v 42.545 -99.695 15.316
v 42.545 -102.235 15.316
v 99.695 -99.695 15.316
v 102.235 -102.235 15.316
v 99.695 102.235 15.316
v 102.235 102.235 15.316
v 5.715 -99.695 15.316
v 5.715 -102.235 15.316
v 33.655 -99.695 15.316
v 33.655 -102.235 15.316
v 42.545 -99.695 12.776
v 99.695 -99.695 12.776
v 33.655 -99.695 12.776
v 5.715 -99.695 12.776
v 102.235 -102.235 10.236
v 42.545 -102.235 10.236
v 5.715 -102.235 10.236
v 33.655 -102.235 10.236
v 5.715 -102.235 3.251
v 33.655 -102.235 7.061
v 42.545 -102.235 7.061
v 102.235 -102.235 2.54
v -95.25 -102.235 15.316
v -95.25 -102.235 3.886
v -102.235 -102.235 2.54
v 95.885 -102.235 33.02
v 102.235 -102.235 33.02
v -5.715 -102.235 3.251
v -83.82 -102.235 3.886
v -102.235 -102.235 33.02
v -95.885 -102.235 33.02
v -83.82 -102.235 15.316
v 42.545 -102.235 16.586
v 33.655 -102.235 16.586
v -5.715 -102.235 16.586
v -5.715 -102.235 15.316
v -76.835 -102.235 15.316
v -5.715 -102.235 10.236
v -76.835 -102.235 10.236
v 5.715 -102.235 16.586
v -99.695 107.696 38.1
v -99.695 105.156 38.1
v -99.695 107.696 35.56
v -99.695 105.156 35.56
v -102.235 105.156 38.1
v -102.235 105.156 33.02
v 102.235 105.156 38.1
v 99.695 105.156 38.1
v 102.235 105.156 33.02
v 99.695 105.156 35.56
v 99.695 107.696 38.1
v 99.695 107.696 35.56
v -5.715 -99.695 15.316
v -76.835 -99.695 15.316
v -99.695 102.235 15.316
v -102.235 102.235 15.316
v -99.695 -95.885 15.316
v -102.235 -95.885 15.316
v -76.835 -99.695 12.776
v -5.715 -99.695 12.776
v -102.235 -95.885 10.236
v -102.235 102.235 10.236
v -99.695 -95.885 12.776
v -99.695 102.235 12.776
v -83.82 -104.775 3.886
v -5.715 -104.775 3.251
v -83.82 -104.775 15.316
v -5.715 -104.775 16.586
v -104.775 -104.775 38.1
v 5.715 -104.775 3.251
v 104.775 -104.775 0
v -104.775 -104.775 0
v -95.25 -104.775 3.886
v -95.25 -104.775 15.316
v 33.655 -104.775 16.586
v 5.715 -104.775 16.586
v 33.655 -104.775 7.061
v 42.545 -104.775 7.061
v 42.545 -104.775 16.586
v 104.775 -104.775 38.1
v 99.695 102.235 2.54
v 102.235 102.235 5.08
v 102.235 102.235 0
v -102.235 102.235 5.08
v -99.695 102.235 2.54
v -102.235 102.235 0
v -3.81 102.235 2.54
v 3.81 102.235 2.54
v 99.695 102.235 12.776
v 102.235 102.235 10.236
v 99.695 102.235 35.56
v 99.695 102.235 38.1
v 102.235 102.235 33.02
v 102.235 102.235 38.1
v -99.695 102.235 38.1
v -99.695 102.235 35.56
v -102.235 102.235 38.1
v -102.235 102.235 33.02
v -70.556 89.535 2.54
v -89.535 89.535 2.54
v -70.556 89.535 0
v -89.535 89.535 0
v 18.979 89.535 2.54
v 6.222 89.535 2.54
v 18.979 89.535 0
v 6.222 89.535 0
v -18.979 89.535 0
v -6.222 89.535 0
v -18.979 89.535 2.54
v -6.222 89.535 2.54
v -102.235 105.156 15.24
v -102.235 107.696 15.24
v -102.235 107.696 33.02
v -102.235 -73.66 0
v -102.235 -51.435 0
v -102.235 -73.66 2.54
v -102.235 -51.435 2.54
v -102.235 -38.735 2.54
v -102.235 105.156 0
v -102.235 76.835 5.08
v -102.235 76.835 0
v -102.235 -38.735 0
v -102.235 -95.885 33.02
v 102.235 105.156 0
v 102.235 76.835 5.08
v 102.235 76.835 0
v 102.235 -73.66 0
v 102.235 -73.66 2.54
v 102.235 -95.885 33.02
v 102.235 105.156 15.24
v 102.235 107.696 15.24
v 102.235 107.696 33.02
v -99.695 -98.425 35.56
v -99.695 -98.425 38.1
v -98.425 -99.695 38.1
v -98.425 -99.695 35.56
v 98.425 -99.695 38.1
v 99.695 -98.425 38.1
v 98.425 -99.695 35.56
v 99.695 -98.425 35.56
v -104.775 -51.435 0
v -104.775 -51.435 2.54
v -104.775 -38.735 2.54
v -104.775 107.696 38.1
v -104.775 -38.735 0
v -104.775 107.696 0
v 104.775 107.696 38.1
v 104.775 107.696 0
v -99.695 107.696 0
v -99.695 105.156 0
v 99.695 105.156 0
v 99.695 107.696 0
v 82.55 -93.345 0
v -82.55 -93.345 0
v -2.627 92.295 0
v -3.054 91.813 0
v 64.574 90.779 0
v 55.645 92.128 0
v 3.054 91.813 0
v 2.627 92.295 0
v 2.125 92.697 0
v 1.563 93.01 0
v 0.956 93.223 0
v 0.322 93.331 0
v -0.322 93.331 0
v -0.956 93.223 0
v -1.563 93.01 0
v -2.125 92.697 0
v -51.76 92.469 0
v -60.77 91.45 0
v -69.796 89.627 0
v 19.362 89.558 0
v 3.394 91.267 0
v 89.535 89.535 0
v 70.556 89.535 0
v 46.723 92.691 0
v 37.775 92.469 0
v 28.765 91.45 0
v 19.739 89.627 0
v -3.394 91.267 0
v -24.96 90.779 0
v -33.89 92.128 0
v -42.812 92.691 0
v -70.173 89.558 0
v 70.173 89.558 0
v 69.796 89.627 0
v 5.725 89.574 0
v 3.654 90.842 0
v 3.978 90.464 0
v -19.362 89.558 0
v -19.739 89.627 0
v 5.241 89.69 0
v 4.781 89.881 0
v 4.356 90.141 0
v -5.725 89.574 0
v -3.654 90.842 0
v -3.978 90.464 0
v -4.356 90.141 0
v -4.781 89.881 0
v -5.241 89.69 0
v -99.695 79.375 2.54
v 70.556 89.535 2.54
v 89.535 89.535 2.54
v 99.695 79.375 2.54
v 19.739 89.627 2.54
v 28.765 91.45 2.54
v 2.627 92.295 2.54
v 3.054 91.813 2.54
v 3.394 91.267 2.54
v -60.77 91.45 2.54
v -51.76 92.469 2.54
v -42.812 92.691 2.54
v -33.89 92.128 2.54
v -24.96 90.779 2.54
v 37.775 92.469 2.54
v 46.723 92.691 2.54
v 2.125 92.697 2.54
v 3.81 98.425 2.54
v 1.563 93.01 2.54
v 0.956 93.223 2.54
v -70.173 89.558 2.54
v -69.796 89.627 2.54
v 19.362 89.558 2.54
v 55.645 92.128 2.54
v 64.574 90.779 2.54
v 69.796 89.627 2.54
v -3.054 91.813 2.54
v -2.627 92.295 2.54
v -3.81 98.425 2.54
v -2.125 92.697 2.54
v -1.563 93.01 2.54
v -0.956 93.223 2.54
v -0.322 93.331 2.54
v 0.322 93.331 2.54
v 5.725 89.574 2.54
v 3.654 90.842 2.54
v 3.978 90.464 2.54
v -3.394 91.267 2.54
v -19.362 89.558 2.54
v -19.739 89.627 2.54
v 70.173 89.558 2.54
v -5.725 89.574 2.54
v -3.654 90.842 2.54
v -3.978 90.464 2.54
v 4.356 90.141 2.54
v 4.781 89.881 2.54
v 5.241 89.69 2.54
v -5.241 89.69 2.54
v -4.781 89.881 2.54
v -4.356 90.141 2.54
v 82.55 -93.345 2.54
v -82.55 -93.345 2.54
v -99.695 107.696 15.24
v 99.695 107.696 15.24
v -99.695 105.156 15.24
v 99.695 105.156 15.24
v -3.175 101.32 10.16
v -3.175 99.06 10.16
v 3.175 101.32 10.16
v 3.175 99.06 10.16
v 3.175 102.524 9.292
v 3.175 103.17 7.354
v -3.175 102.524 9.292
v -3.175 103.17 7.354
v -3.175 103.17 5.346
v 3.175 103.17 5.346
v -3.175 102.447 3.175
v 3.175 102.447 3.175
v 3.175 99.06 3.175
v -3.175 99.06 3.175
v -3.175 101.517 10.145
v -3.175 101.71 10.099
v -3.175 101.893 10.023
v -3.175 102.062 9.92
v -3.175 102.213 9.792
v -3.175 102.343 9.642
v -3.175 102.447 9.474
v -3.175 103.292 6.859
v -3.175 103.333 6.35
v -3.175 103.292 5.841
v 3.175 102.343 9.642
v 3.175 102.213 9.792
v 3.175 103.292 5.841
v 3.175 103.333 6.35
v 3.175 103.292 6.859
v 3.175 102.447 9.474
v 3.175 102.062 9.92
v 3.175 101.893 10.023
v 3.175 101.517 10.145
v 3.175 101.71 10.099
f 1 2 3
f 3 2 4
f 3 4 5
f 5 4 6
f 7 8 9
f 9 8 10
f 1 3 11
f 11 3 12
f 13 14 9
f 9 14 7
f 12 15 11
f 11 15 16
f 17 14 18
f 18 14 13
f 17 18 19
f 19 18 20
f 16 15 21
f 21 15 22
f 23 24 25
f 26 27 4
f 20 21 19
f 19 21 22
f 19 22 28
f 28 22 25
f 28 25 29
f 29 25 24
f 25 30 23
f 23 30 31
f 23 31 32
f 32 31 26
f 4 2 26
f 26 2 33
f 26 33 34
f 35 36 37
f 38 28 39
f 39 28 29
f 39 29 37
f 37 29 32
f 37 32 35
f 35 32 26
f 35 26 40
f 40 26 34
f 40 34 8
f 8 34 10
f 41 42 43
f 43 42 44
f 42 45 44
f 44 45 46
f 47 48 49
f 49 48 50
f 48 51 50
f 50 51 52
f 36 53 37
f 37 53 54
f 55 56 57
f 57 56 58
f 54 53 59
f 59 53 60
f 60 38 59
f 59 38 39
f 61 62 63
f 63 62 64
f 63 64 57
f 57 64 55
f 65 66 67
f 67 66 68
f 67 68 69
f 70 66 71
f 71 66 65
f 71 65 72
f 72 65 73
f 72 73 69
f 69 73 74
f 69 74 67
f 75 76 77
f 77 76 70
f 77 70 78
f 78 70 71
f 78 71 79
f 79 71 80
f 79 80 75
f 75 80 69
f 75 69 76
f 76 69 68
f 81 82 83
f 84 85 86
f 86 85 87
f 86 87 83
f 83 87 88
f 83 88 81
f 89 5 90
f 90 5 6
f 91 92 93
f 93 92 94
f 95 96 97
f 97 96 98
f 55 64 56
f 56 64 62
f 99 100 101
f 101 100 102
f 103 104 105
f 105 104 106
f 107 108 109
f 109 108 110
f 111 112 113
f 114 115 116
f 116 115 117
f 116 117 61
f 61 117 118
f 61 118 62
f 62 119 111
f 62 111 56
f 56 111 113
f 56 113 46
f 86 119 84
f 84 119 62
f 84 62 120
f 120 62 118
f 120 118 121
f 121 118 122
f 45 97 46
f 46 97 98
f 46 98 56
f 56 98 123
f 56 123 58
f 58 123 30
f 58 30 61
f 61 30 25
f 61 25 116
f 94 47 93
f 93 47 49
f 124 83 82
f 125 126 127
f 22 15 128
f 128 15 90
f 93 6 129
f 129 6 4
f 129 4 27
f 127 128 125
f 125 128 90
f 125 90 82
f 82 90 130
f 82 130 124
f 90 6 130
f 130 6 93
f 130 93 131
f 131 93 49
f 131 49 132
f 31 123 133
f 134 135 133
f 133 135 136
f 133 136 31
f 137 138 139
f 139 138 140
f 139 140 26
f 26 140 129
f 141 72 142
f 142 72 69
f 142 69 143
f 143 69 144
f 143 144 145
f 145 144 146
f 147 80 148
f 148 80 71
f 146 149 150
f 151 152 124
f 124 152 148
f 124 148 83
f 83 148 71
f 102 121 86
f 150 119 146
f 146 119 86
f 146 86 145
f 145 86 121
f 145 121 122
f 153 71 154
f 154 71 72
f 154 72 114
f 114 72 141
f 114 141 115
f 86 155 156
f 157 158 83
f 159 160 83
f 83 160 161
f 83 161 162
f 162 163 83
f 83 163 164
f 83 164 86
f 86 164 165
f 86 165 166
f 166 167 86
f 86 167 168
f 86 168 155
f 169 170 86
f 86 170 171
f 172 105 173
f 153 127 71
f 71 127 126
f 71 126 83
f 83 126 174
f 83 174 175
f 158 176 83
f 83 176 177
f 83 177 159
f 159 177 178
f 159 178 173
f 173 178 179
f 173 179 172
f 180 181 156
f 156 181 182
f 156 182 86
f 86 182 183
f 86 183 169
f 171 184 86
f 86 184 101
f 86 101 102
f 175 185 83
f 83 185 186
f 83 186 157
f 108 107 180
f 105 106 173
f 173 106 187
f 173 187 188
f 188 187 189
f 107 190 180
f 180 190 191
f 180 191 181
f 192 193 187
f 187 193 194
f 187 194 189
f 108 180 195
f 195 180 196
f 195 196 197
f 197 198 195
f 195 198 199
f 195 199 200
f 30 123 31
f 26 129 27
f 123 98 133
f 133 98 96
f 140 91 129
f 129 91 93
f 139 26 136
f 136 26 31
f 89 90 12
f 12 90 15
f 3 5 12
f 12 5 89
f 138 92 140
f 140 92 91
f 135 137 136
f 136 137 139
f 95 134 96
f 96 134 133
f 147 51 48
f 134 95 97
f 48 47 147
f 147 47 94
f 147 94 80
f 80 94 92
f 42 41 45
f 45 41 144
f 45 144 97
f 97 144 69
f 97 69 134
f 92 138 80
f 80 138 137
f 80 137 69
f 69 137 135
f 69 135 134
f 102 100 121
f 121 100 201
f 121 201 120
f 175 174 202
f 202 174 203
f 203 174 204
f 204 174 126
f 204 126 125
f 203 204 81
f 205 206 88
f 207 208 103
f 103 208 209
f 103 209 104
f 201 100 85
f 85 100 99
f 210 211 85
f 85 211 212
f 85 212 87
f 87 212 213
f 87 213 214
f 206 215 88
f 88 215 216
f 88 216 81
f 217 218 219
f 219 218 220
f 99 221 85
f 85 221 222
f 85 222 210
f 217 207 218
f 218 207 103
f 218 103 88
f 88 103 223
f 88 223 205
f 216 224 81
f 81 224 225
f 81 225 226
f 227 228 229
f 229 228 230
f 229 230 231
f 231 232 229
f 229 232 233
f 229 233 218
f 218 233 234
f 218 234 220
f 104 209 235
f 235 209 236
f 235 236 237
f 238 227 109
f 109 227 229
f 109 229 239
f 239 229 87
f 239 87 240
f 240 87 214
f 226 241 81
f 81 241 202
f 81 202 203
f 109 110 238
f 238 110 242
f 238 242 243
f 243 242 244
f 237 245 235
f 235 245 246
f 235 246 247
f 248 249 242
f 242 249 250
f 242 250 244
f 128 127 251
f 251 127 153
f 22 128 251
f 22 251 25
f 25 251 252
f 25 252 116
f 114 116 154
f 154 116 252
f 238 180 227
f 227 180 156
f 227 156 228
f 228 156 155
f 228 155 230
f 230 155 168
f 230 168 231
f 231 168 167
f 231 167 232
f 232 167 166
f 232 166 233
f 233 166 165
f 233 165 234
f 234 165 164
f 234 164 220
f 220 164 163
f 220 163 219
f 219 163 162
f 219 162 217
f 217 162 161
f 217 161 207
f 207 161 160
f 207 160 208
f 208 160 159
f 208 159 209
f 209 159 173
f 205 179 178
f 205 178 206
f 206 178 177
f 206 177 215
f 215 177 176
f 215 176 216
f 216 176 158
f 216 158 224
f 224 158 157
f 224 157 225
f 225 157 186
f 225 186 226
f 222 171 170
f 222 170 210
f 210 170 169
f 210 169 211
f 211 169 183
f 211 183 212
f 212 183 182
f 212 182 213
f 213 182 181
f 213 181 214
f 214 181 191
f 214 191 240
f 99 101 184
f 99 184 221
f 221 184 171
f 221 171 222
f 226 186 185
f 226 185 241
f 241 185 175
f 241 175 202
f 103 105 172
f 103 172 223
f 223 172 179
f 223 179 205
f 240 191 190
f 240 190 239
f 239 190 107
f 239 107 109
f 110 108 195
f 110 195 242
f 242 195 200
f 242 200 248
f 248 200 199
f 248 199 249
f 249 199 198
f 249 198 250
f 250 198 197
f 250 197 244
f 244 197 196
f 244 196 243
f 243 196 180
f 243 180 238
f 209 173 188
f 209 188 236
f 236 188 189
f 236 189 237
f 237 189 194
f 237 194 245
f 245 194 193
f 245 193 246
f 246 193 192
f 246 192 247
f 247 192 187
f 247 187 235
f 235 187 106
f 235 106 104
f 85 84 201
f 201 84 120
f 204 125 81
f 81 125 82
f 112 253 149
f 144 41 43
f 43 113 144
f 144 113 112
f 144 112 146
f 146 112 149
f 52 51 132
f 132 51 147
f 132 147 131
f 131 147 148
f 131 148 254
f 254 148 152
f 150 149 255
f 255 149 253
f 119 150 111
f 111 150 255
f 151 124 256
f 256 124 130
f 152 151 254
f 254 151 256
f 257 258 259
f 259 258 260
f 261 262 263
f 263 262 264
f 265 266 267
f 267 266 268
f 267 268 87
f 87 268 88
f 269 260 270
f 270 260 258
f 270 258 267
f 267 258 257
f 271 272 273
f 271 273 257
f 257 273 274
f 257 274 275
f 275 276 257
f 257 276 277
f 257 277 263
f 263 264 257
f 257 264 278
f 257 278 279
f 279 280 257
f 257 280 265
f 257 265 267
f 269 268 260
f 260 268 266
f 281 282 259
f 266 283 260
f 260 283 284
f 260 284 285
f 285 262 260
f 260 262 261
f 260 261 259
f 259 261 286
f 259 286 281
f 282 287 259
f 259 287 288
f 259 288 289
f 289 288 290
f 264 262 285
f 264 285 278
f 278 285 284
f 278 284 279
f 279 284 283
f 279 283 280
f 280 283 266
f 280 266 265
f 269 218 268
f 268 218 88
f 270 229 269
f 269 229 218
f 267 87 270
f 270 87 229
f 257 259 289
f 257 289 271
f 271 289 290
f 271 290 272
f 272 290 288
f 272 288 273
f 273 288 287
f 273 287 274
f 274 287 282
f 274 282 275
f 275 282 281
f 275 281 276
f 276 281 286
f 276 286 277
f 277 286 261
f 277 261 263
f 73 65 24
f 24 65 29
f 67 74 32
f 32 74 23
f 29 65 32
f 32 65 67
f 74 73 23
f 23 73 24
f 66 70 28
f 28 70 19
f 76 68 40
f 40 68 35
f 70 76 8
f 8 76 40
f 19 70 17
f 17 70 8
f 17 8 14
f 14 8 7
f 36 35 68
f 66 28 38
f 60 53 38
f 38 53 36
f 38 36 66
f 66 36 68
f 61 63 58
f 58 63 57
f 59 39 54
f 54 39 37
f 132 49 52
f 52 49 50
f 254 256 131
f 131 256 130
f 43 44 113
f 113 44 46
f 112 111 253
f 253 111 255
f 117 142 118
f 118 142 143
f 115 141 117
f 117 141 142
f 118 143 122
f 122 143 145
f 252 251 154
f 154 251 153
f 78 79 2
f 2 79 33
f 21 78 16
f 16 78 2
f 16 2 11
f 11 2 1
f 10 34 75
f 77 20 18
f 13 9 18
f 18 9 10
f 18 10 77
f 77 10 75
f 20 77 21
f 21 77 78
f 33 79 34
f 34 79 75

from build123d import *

# Parameters (mm, degrees)
BOSS_EXTRUDE1_DEPTH       = 35.56
BOSS_EXTRUDE2_DEPTH       = 2.54
BOSS_EXTRUDE3_REACH       = 236.724
BOSS_EXTRUDE4_REACH       = 236.724
BOSS_EXTRUDE5_DEPTH       = 2.54
BOSS_EXTRUDE6_DEPTH       = 204.47
BOSS_EXTRUDE7_REACH       = 236.724
BOSS_EXTRUDE8_DEPTH       = 2.54
BOSS_EXTRUDE9_DEPTH       = 2.54
SKETCH11_R                = 3.81
CUT_EXTRUDE1_DEPTH        = 2.54
FILLET1_R                 = 3.175
CHAMFER1_SIZE             = 2.54
SKETCH12_W                = 2.54
SKETCH12_H                = 38.1
BOSS_EXTRUDE10_DEPTH      = 5.461
SKETCH13_W                = 2.54
SKETCH13_H                = 2.54
BOSS_EXTRUDE11_DEPTH      = 38.1
BOSS_EXTRUDE12_DEPTH      = 3.175
BOSS_EXTRUDE12_DEPTH_BACK = 3.175
FILLET2_R                 = 3.175
CHAMFER2_SIZE             = 0.635
FILLET3_R                 = 1.27
CUT_EXTRUDE2_DEPTH        = 46.99
CUT_EXTRUDE2_DEPTH_BACK   = 3.175
SKETCH15_W                = 11.43
SKETCH15_H                = 11.43
SKETCH16_W                = 11.43
SKETCH16_H                = 37.106454998
SKETCH16_W_2              = 25.4
SKETCH16_H_2              = 12.337621438
CUT_EXTRUDE3_DEPTH        = 6.35
CUT_EXTRUDE4_DEPTH        = 2.54
SKETCH18_W                = 2.54
SKETCH18_H                = 12.7
CUT_EXTRUDE5_DEPTH        = 25.4
BOSS_EXTRUDE13_DEPTH      = 2.54
SKETCH20_W                = 8.89
SKETCH20_H                = 10.16
CUT_EXTRUDE6_DEPTH        = 2.54
SKETCH21_W                = 8.89
SKETCH21_H                = 9.525
CUT_EXTRUDE7_DEPTH        = 7.62


with BuildPart() as part:
    # Sketch1 → Boss-Extrude1 (new body)
    with BuildSketch(Plane.XY):
        Polygon((-102.235, 102.235), (-104.775, 102.235), (-104.775, -104.775), (104.775, -104.775), (104.775, 102.235), (102.235, 102.235), (102.235, -102.235), (-102.235, -102.235), align=None)
    extrude(amount=BOSS_EXTRUDE1_DEPTH)

    # Sketch2 → Boss-Extrude2 (add)
    with BuildSketch(Plane.XY.offset(35.56)):
        Polygon((-102.235, -102.235), (-102.235, -95.885), (-95.885, -102.235), align=None)
        Polygon((102.235, -102.235), (102.235, -95.885), (95.885, -102.235), align=None)
    extrude(amount=-BOSS_EXTRUDE2_DEPTH)

    # Boss-Extrude3: up to this face of the body (flat: up to its plane)
    boss_extrude3_end = Plane(part.part.faces().sort_by_distance((0, -102.235, 17.706426025))[0])
    # Sketch4 → Boss-Extrude3 (add, up to the picked face)
    with BuildSketch(Plane(origin=(0, 102.235, 0), x_dir=(1, 0, 0), z_dir=(0, 1, 0)), mode=Mode.PRIVATE) as boss_extrude3_sk1:
        Polygon((-102.235, -33.02), (-99.695, -35.56), (-102.235, -35.56), align=None)
    boss_extrude3_tool1 = split(extrude(boss_extrude3_sk1.sketch, amount=-BOSS_EXTRUDE3_REACH, mode=Mode.PRIVATE), bisect_by=boss_extrude3_end, keep=Keep.BOTH, mode=Mode.PRIVATE)
    # Sketch4 → Boss-Extrude3 (add, up to the picked face)
    with BuildSketch(Plane(origin=(0, 102.235, 0), x_dir=(1, 0, 0), z_dir=(0, 1, 0)), mode=Mode.PRIVATE) as boss_extrude3_sk2:
        Polygon((102.235, -33.02), (99.695, -35.56), (102.235, -35.56), align=None)
    boss_extrude3_tool2 = split(extrude(boss_extrude3_sk2.sketch, amount=-BOSS_EXTRUDE3_REACH, mode=Mode.PRIVATE), bisect_by=boss_extrude3_end, keep=Keep.BOTH, mode=Mode.PRIVATE)
    add(boss_extrude3_tool1.solids().sort_by(Axis((-101.388333, 102.235, 34.713333), (0, -1, 0)))[0])
    add(boss_extrude3_tool2.solids().sort_by(Axis((101.388333, 102.235, 34.713333), (0, -1, 0)))[0])

    # Boss-Extrude4: up to this plane
    boss_extrude4_end = Plane(origin=(102.235, -95.885, 33.02), z_dir=(-0.7071067811865476, 0.7071067811865476, 0))
    # Sketch5 → Boss-Extrude4 (add, up to the surface)
    with BuildSketch(Plane(origin=(-102.235, 0, 0), x_dir=(0, 0, -1), z_dir=(1, 0, 0)), mode=Mode.PRIVATE) as boss_extrude4_sk1:
        Polygon((-33.02, -102.235), (-35.56, -102.235), (-35.56, -99.695), align=None)
    boss_extrude4_tool1 = split(extrude(boss_extrude4_sk1.sketch, amount=BOSS_EXTRUDE4_REACH, mode=Mode.PRIVATE), bisect_by=boss_extrude4_end, keep=Keep.BOTH, mode=Mode.PRIVATE)
    add(boss_extrude4_tool1.solids().sort_by_distance((-102.235, -101.388333, 34.713333))[0])

    # Sketch6 → Boss-Extrude5 (add)
    with BuildSketch(Plane(origin=(0, -102.235, 0), x_dir=(1, 0, 0), z_dir=(0, 1, 0))):
        Polygon((0, -15.3162), (-102.235, -15.3162), (-102.235, -12.7762), (102.235, -12.7762), (102.235, -15.3162), align=None)
    extrude(amount=BOSS_EXTRUDE5_DEPTH)

    # Sketch7 → Boss-Extrude6 (add)
    with BuildSketch(Plane(origin=(-102.235, 0, 0), x_dir=(0, 0, -1), z_dir=(1, 0, 0))):
        Polygon((-12.7762, -99.695), (-10.2362, -102.235), (-12.7762, -102.235), align=None)
    extrude(amount=BOSS_EXTRUDE6_DEPTH)

    # Boss-Extrude7: up to this face of the body (flat: up to its plane)
    boss_extrude7_end = Plane(part.part.faces().sort_by_distance((0, -102.235, 24.1681))[0])
    # Sketch8 → Boss-Extrude7 (add, up to the picked face)
    with BuildSketch(Plane(origin=(0, 102.235, 0), x_dir=(1, 0, 0), z_dir=(0, 1, 0)), mode=Mode.PRIVATE) as boss_extrude7_sk1:
        Polygon((-102.235, -15.3162), (-99.695, -15.3162), (-99.695, -12.7762), (-102.235, -10.2362), align=None)
    boss_extrude7_tool1 = split(extrude(boss_extrude7_sk1.sketch, amount=-BOSS_EXTRUDE7_REACH, mode=Mode.PRIVATE), bisect_by=boss_extrude7_end, keep=Keep.BOTH, mode=Mode.PRIVATE)
    # Sketch8 → Boss-Extrude7 (add, up to the picked face)
    with BuildSketch(Plane(origin=(0, 102.235, 0), x_dir=(1, 0, 0), z_dir=(0, 1, 0)), mode=Mode.PRIVATE) as boss_extrude7_sk2:
        Polygon((99.695, -15.3162), (99.695, -12.7762), (102.235, -10.2362), (102.235, -15.3162), align=None)
    boss_extrude7_tool2 = split(extrude(boss_extrude7_sk2.sketch, amount=-BOSS_EXTRUDE7_REACH, mode=Mode.PRIVATE), bisect_by=boss_extrude7_end, keep=Keep.BOTH, mode=Mode.PRIVATE)
    add(boss_extrude7_tool1.solids().sort_by(Axis((-101.106111, 102.235, 13.340644), (0, -1, 0)))[0])
    add(boss_extrude7_tool2.solids().sort_by(Axis((101.106111, 102.235, 13.340644), (0, -1, 0)))[0])

    # Sketch9 → Boss-Extrude8 (add)
    with BuildSketch(Plane.XY.offset(35.56)):
        Polygon((-104.775, 102.235), (-99.695, 102.235), (-99.695, -98.425), (-98.425, -99.695), (98.425, -99.695), (99.695, -98.425), (99.695, 102.235), (104.775, 102.235), (104.775, -104.775), (-104.775, -104.775), align=None)
    extrude(amount=BOSS_EXTRUDE8_DEPTH)

    # Sketch10 → Boss-Extrude9 (add)
    with BuildSketch(Plane(origin=(0, 0, 0), x_dir=(-1, 0, 0), z_dir=(0, 0, -1))):
        Polygon((-102.235, 102.235), (102.235, 102.235), (102.235, 89.535), (102.235, 76.835), (89.535, 89.535), (-89.535, 89.535), (-102.235, 76.835), (-102.235, 89.535), align=None)
        Polygon((-102.235, -102.235), (-73.66, -102.235), (-102.235, -73.66), align=None)
        Polygon((102.235, -102.235), (73.66, -102.235), (102.235, -73.66), align=None)
    extrude(amount=-BOSS_EXTRUDE9_DEPTH)

    # Sketch11 → Cut-Extrude1 (cut)
    with BuildSketch(Plane(origin=(0, 0, 0), x_dir=(-1, 0, 0), z_dir=(0, 0, -1))):
        with Locations((0, 89.535)):
            Circle(SKETCH11_R)
        with BuildLine():
            Line((-44.7675, 89.535), (-19.3675, 89.535))
            add(Edge.make_bspline(
                [(-19.3675, 89.535), (-44.7675, 95.885), (-70.1675, 89.535)],
                knots=[0, 0, 0, 1, 1, 1], degree=2))
            Line((-70.1675, 89.535), (-44.7675, 89.535))
        make_face()
        with BuildLine():
            Line((44.7675, 89.535), (19.3675, 89.535))
            add(Edge.make_bspline(
                [(19.3675, 89.535), (44.7675, 95.885), (70.1675, 89.535)],
                knots=[0, 0, 0, 1, 1, 1], degree=2))
            Line((70.1675, 89.535), (44.7675, 89.535))
        make_face()
    extrude(amount=-CUT_EXTRUDE1_DEPTH, mode=Mode.SUBTRACT)

    # Fillet1
    fillet1_edges = [part.edges().sort_by_distance(p)[0] for p in [
        (-19.3675, 89.535, 1.27),
        (-70.1675, 89.535, 1.27),
        (70.1675, 89.535, 1.27),
        (19.3675, 89.535, 1.27),
        (-3.81, 89.535, 1.27),
        (3.81, 89.535, 1.27),
    ]]
    fillet(fillet1_edges, radius=FILLET1_R)

    # Chamfer1
    chamfer1_edges = [part.edges().sort_by_distance(p)[0] for p in [
        (-102.235, 89.535, 2.54),
        (102.235, 89.535, 2.54),
    ]]
    chamfer(chamfer1_edges, length=CHAMFER1_SIZE)

    # Sketch12 → Boss-Extrude10 (add)
    with BuildSketch(Plane(origin=(0, 102.235, 0), x_dir=(1, 0, 0), z_dir=(0, 1, 0))):
        with Locations((-103.505, -19.05)):
            Rectangle(SKETCH12_W, SKETCH12_H)
        with Locations((103.505, -19.05)):
            Rectangle(SKETCH12_W, SKETCH12_H)
    extrude(amount=BOSS_EXTRUDE10_DEPTH)

    # Sketch13 → Boss-Extrude11 (add)
    with BuildSketch(Plane.XY.offset(38.1)):
        with Locations((-100.965, 106.426)):
            Rectangle(SKETCH13_W, SKETCH13_H)
        with Locations((100.965, 106.426)):
            Rectangle(SKETCH13_W, SKETCH13_H)
    extrude(amount=-BOSS_EXTRUDE11_DEPTH)

    # Sketch14 → Boss-Extrude12 (add, two sides: drawn at the far end of the back side and taken through both)
    with BuildSketch(Plane(origin=(0, 0, 0), x_dir=(0, 0, -1), z_dir=(1, 0, 0)).offset(-BOSS_EXTRUDE12_DEPTH_BACK)):
        Polygon((-10.16, 99.06), (-2.54, 99.06), (-2.54, 102.235), (-6.35, 103.505), (-10.16, 102.235), align=None)
    extrude(amount=BOSS_EXTRUDE12_DEPTH + BOSS_EXTRUDE12_DEPTH_BACK)

    # Fillet2
    fillet2_edges = [part.edges().sort_by_distance(p)[0] for p in [
        (0, 103.505, 6.35),
    ]]
    fillet(fillet2_edges, radius=FILLET2_R)

    # Chamfer2
    # the kernel refuses this chamfer: 0.635 mm, written as the material it adds along each edge
    with BuildSketch(Plane(origin=(-3.175, 99.06, 2.54), x_dir=(0.02749587661058659, 0, 0.9996219169112968), z_dir=(0, 1, 0))) as chamfer2_piece_1_section:
        Polygon((CHAMFER2_SIZE * 0.999621916911, -CHAMFER2_SIZE * 0.0274958766106), (-CHAMFER2_SIZE * 0.0274958766106, -CHAMFER2_SIZE * 0.999621916911), (0, 0), align=None)
    chamfer2_piece_1 = extrude(amount=3.175, mode=Mode.PRIVATE)
    chamfer2_piece_1 = split(chamfer2_piece_1, bisect_by=Plane(origin=(-3.38440866, 102.139071745, 2.252215234), z_dir=(0, -0.9486832980505152, 0.3162277660168339)), keep=Keep.TOP, mode=Mode.PRIVATE)
    add(chamfer2_piece_1)
    with BuildSketch(Plane(origin=(-3.175, 99.06, 2.54), x_dir=(0.02749587661058659, 0, 0.9996219169112968), z_dir=(0, 1, 0))) as chamfer2_piece_2_section:
        Polygon((CHAMFER2_SIZE * 0.999621916911, -CHAMFER2_SIZE * 0.0274958766106), (-CHAMFER2_SIZE * 0.0274958766106, -CHAMFER2_SIZE * 0.999621916911), (0, 0), align=None)
    chamfer2_piece_2 = extrude(amount=4.808018697, mode=Mode.PRIVATE)
    chamfer2_piece_2 = split(chamfer2_piece_2, bisect_by=Plane(origin=(-3.319647303, 102.339821678, 2.854465035), z_dir=(0, -0.9486832980505152, 0.3162277660168339)), keep=Keep.TOP, mode=Mode.PRIVATE)
    chamfer2_piece_2 = split(chamfer2_piece_2, bisect_by=Plane(origin=(-3.319647303, 102.235, 2.871015826), z_dir=(0, 1, 0)), keep=Keep.TOP, mode=Mode.PRIVATE)
    add(chamfer2_piece_2)
    with BuildSketch(Plane(origin=(-3.175, 99.06, 2.54), x_dir=(0, -0.9996219169112966, -0.027495876610586965), z_dir=(1, 0, 0))) as chamfer2_piece_3:
        Polygon((CHAMFER2_SIZE * 0.999621916911, -CHAMFER2_SIZE * 0.0274958766106), (-CHAMFER2_SIZE * 0.0274958766106, -CHAMFER2_SIZE * 0.999621916911), (0, 0), align=None)
    extrude(amount=6.35)
    with BuildSketch(Plane(origin=(3.175, 99.06, 2.54), x_dir=(0.9996219169112968, 0, -0.027495876610587288), z_dir=(0, 1, 0))) as chamfer2_piece_4_section:
        Polygon((CHAMFER2_SIZE * 0.999621916911, -CHAMFER2_SIZE * 0.0274958766106), (-CHAMFER2_SIZE * 0.0274958766106, -CHAMFER2_SIZE * 0.999621916911), (0, 0), align=None)
    chamfer2_piece_4 = extrude(amount=3.175, mode=Mode.PRIVATE)
    chamfer2_piece_4 = split(chamfer2_piece_4, bisect_by=Plane(origin=(3.38440866, 102.139071745, 2.252215234), z_dir=(0, -0.9486832980505152, 0.3162277660168339)), keep=Keep.TOP, mode=Mode.PRIVATE)
    add(chamfer2_piece_4)
    with BuildSketch(Plane(origin=(3.175, 99.06, 2.54), x_dir=(0.9996219169112968, 0, -0.027495876610587288), z_dir=(0, 1, 0))) as chamfer2_piece_5_section:
        Polygon((CHAMFER2_SIZE * 0.999621916911, -CHAMFER2_SIZE * 0.0274958766106), (-CHAMFER2_SIZE * 0.0274958766106, -CHAMFER2_SIZE * 0.999621916911), (0, 0), align=None)
    chamfer2_piece_5 = extrude(amount=4.808018697, mode=Mode.PRIVATE)
    chamfer2_piece_5 = split(chamfer2_piece_5, bisect_by=Plane(origin=(3.319647303, 102.339821678, 2.854465035), z_dir=(0, -0.9486832980505152, 0.3162277660168339)), keep=Keep.TOP, mode=Mode.PRIVATE)
    chamfer2_piece_5 = split(chamfer2_piece_5, bisect_by=Plane(origin=(3.319647303, 102.235, 2.871015826), z_dir=(0, 1, 0)), keep=Keep.TOP, mode=Mode.PRIVATE)
    add(chamfer2_piece_5)
    with BuildSketch(Plane(origin=(-3.175, 97.426981303, 2.54), x_dir=(0.027495876610586608, 0, 0.9996219169112968), z_dir=(0, 1, 0))) as chamfer2_piece_6a_section:
        Polygon((CHAMFER2_SIZE * 0.999621916911, -CHAMFER2_SIZE * 0.0274958766106), (-CHAMFER2_SIZE * 0.0274958766106, -CHAMFER2_SIZE * 0.999621916911), (0, 0), align=None)
    chamfer2_piece_6a = extrude(amount=4.808018697, mode=Mode.PRIVATE)
    chamfer2_piece_6a = split(chamfer2_piece_6a, bisect_by=Plane(origin=(-3.384418953, 99.06, 2.749418953), z_dir=(0, -1, 0)), keep=Keep.TOP, mode=Mode.PRIVATE)
    with BuildSketch(Plane(origin=(-4.808018697, 99.06, 2.54), x_dir=(0, -0.9996219169112966, -0.027495876610585605), z_dir=(1, 0, 0))) as chamfer2_piece_6b_section:
        Polygon((CHAMFER2_SIZE * 0.999621916911, -CHAMFER2_SIZE * 0.0274958766106), (-CHAMFER2_SIZE * 0.0274958766106, -CHAMFER2_SIZE * 0.999621916911), (0, 0), align=None)
    chamfer2_piece_6b = extrude(amount=7.983018697, mode=Mode.PRIVATE)
    chamfer2_piece_6b = split(chamfer2_piece_6b, bisect_by=Plane(origin=(-3.175, 98.850581047, 2.749418953), z_dir=(-1, 0, 0)), keep=Keep.TOP, mode=Mode.PRIVATE)
    chamfer2_piece_6 = chamfer2_piece_6a & chamfer2_piece_6b
    add(chamfer2_piece_6)
    with BuildSketch(Plane(origin=(-3.175, 99.06, 2.54), x_dir=(0, -0.9996219169112966, -0.027495876610586965), z_dir=(1, 0, 0))) as chamfer2_piece_7a_section:
        Polygon((CHAMFER2_SIZE * 0.999621916911, -CHAMFER2_SIZE * 0.0274958766106), (-CHAMFER2_SIZE * 0.0274958766106, -CHAMFER2_SIZE * 0.999621916911), (0, 0), align=None)
    chamfer2_piece_7a = extrude(amount=7.983018697, mode=Mode.PRIVATE)
    chamfer2_piece_7a = split(chamfer2_piece_7a, bisect_by=Plane(origin=(3.175, 98.850581047, 2.749418953), z_dir=(1, 0, 0)), keep=Keep.TOP, mode=Mode.PRIVATE)
    with BuildSketch(Plane(origin=(3.175, 97.426981303, 2.54), x_dir=(0.9996219169112968, 0, -0.027495876610586608), z_dir=(0, 1, 0))) as chamfer2_piece_7b_section:
        Polygon((CHAMFER2_SIZE * 0.999621916911, -CHAMFER2_SIZE * 0.0274958766106), (-CHAMFER2_SIZE * 0.0274958766106, -CHAMFER2_SIZE * 0.999621916911), (0, 0), align=None)
    chamfer2_piece_7b = extrude(amount=4.808018697, mode=Mode.PRIVATE)
    chamfer2_piece_7b = split(chamfer2_piece_7b, bisect_by=Plane(origin=(3.384418953, 99.06, 2.749418953), z_dir=(0, -1, 0)), keep=Keep.TOP, mode=Mode.PRIVATE)
    chamfer2_piece_7 = chamfer2_piece_7a & chamfer2_piece_7b
    add(chamfer2_piece_7)

    # Fillet3
    fillet3_edges = [part.edges().sort_by_distance(p)[0] for p in [
        (0, 102.235, 10.16),
    ]]
    fillet(fillet3_edges, radius=FILLET3_R)

    # Sketch15 → Cut-Extrude2 (cut, two sides: drawn at the far end of the back side and taken through both)
    with BuildSketch(Plane(origin=(0, -102.235, 0), x_dir=(1, 0, 0), z_dir=(0, 1, 0)).offset(-CUT_EXTRUDE2_DEPTH_BACK)):
        with Locations((-89.535, -9.6012)):
            Rectangle(SKETCH15_W, SKETCH15_H)
        Polygon((-5.715, -10.2362), (-5.715, -15.3162), (-5.715, -16.5862), (5.715, -16.5862), (5.715, -15.3162), (5.715, -10.2362), (5.715, -3.2512), (-5.715, -3.2512), align=None)
    extrude(amount=CUT_EXTRUDE2_DEPTH + CUT_EXTRUDE2_DEPTH_BACK, mode=Mode.SUBTRACT)

    # Sketch16 → Cut-Extrude3 (cut)
    with BuildSketch(Plane(origin=(0, -102.235, 0), x_dir=(1, 0, 0), z_dir=(0, 1, 0))):
        with Locations((0, -8.636)):
            Rectangle(SKETCH16_W, SKETCH16_H)
        with Locations((-89.535, -9.6012)):
            Rectangle(SKETCH16_W_2, SKETCH16_H_2)
    extrude(amount=CUT_EXTRUDE3_DEPTH, mode=Mode.SUBTRACT)

    # Sketch17 → Cut-Extrude4 (cut)
    with BuildSketch(Plane(origin=(0, 107.696, 0), x_dir=(1, 0, 0), z_dir=(0, 1, 0))):
        Polygon((-102.235, -33.02), (-99.695, -35.56), (-99.695, -15.24), (-102.235, -15.24), align=None)
        Polygon((99.695, -15.24), (102.235, -15.24), (102.235, -33.02), (99.695, -35.56), align=None)
    extrude(amount=-CUT_EXTRUDE4_DEPTH, mode=Mode.SUBTRACT)

    # Sketch18 → Cut-Extrude5 (cut)
    with BuildSketch(Plane(origin=(-102.235, 0, 0), x_dir=(0, 0, -1), z_dir=(1, 0, 0))):
        with Locations((-1.27, -45.085)):
            Rectangle(SKETCH18_W, SKETCH18_H)
    extrude(amount=-CUT_EXTRUDE5_DEPTH, mode=Mode.SUBTRACT)

    # Sketch19 → Boss-Extrude13 (add)
    with BuildSketch(Plane.XY.offset(2.54)):
        Polygon((82.55, -93.345), (-82.55, -93.345), (-73.66, -102.235), (73.66, -102.235), align=None)
    extrude(amount=-BOSS_EXTRUDE13_DEPTH)

    # Sketch20 → Cut-Extrude6 (cut)
    with BuildSketch(Plane(origin=(0, -102.235, 0), x_dir=(1, 0, 0), z_dir=(0, 1, 0))):
        with Locations((38.1, -15.3162)):
            Rectangle(SKETCH20_W, SKETCH20_H)
    extrude(amount=CUT_EXTRUDE6_DEPTH, mode=Mode.SUBTRACT)

    # Sketch21 → Cut-Extrude7 (cut)
    with BuildSketch(Plane(origin=(0, -102.235, 0), x_dir=(1, 0, 0), z_dir=(0, 1, 0))):
        with Locations((38.1, -11.8237)):
            Rectangle(SKETCH21_W, SKETCH21_H)
    extrude(amount=-CUT_EXTRUDE7_DEPTH, mode=Mode.SUBTRACT)


solid = part.part
